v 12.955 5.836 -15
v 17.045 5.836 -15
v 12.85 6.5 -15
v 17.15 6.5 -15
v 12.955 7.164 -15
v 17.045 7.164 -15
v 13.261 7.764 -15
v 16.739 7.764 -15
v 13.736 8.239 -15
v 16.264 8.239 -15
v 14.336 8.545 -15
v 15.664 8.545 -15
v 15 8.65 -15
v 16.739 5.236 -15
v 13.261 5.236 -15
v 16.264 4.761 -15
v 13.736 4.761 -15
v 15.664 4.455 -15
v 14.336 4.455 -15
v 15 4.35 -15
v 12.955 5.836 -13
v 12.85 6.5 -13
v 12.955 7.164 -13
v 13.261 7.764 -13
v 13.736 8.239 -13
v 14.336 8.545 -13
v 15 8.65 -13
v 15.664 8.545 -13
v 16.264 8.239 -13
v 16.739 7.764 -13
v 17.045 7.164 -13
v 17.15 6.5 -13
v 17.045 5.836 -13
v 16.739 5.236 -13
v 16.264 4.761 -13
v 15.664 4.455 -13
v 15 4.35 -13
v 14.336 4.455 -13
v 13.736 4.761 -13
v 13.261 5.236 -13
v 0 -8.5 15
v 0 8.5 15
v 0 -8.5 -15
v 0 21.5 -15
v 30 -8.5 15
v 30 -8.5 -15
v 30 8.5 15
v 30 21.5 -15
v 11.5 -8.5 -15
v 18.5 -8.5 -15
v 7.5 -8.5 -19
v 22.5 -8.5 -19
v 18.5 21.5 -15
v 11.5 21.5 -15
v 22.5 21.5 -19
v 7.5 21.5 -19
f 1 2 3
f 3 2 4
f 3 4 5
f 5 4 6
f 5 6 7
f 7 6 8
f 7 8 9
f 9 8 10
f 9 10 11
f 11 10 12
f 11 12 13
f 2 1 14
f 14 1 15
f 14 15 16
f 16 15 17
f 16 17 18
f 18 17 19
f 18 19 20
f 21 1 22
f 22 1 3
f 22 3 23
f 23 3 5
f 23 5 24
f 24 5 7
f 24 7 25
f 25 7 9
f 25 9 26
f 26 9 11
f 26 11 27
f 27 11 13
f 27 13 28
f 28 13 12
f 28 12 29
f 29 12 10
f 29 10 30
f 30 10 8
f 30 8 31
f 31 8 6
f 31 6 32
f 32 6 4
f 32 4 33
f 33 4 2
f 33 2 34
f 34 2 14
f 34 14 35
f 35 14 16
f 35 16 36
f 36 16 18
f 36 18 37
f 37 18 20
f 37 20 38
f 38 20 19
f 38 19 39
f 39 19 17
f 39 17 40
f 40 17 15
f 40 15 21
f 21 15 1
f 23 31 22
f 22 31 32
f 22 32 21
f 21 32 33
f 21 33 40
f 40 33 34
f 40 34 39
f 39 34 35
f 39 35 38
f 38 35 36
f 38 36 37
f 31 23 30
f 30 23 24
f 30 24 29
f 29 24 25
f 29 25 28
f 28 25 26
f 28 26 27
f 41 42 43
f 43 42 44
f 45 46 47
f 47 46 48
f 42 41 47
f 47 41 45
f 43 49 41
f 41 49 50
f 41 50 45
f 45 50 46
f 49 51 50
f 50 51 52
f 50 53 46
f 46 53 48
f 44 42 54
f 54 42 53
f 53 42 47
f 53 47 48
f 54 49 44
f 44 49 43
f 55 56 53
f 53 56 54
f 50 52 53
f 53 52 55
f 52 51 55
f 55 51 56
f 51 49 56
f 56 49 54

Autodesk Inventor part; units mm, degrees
ref_plane "YZ Plane" through (0, 0, 0) normal (1, 0, 0) x (0, 1, 0)
ref_plane "XZ Plane" through (0, 0, 0) normal (0, 1, 0) x (-1, 0, 0)
ref_plane "XY Plane" through (0, 0, 0) normal (0, 0, 1) x (1, 0, 0)
sketch "Skizze1" plane through (0, 0, 0) normal (1, 0, 0) x (0, 1, 0)
  line L0 (-8.5, -15) -> (8.5, -15)
  line L1 (8.5, -15) -> (8.5, 15)
  line L2 (8.5, 15) -> (-8.5, 15)
  line L3 (-8.5, 15) -> (-8.5, -15)
  line L4 (-8.5, -15) -> (8.5, 15) construction
  line L5 (8.5, -15) -> (-8.5, 15) construction
  line L6 (-8.5, -15) -> (21.5, -15)
  line L7 (21.5, -15) -> (8.5, 15)
  point P0 (0, 0)
  point P1 (8.5, -15)
  dimension "d0" = 30
  dimension "d1" = 17
  dimension "d3" = 30
extrude "Extrusion1" add sketch "Skizze1" along normal blind 30
sketch "Skizze2" plane through (0, -8.5, -15) normal (0, 0, -1) x (-1, 0, 0)
  line L0 (0, 30) -> (-30, 30) construction
  line L1 (-15, 30) -> (-15, 0) construction
  line L2 (0, 0) -> (-30, 0) construction
  line L3 (0, 17) -> (0, 0) construction
  line L4 (0, 15) -> (-30, 15) construction
  circle A0 centre (-15, 15) radius 2.15
  point P0 (0, 8.5)
  dimension "d6" = 4.3
extrude "Extrusion2" cut sketch "Skizze2" against normal blind 2
sketch "Skizze4" plane through (0, -8.5, -15) normal (0, -1, 0) x (1, 0, 0)
  line L0 (0, 30) -> (30, 30) construction
  line L1 (15, 30) -> (15, 0) construction
  line L2 (17.15, 0) -> (12.85, 0) construction
  line L3 (7.5, 4) -> (22.5, 4)
  line L4 (0, 0) -> (30, 0) projected
  line L5 (0, 30) -> (0, 0) projected
  line L6 (7.5, 4) -> (11.5, 0)
  line L7 (0, 0) -> (30, 0) projected
  line L8 (22.5, 4) -> (18.5, 0)
  line L9 (7.5, -4) -> (22.5, -4)
  line L10 (7.5, -4) -> (11.5, 0)
  line L11 (22.5, -4) -> (18.5, 0)
  point P0 (0, 15)
  dimension "d9" = 4
  dimension "d10" = 15
  dimension "d11" = 7.5
  dimension "d12" = 45
extrude "Extrusion3" add sketch "Skizze4" against normal blind 30 contours L4 L11 L9 L10
properties part number "CarlaRescueRampeTeil2"
